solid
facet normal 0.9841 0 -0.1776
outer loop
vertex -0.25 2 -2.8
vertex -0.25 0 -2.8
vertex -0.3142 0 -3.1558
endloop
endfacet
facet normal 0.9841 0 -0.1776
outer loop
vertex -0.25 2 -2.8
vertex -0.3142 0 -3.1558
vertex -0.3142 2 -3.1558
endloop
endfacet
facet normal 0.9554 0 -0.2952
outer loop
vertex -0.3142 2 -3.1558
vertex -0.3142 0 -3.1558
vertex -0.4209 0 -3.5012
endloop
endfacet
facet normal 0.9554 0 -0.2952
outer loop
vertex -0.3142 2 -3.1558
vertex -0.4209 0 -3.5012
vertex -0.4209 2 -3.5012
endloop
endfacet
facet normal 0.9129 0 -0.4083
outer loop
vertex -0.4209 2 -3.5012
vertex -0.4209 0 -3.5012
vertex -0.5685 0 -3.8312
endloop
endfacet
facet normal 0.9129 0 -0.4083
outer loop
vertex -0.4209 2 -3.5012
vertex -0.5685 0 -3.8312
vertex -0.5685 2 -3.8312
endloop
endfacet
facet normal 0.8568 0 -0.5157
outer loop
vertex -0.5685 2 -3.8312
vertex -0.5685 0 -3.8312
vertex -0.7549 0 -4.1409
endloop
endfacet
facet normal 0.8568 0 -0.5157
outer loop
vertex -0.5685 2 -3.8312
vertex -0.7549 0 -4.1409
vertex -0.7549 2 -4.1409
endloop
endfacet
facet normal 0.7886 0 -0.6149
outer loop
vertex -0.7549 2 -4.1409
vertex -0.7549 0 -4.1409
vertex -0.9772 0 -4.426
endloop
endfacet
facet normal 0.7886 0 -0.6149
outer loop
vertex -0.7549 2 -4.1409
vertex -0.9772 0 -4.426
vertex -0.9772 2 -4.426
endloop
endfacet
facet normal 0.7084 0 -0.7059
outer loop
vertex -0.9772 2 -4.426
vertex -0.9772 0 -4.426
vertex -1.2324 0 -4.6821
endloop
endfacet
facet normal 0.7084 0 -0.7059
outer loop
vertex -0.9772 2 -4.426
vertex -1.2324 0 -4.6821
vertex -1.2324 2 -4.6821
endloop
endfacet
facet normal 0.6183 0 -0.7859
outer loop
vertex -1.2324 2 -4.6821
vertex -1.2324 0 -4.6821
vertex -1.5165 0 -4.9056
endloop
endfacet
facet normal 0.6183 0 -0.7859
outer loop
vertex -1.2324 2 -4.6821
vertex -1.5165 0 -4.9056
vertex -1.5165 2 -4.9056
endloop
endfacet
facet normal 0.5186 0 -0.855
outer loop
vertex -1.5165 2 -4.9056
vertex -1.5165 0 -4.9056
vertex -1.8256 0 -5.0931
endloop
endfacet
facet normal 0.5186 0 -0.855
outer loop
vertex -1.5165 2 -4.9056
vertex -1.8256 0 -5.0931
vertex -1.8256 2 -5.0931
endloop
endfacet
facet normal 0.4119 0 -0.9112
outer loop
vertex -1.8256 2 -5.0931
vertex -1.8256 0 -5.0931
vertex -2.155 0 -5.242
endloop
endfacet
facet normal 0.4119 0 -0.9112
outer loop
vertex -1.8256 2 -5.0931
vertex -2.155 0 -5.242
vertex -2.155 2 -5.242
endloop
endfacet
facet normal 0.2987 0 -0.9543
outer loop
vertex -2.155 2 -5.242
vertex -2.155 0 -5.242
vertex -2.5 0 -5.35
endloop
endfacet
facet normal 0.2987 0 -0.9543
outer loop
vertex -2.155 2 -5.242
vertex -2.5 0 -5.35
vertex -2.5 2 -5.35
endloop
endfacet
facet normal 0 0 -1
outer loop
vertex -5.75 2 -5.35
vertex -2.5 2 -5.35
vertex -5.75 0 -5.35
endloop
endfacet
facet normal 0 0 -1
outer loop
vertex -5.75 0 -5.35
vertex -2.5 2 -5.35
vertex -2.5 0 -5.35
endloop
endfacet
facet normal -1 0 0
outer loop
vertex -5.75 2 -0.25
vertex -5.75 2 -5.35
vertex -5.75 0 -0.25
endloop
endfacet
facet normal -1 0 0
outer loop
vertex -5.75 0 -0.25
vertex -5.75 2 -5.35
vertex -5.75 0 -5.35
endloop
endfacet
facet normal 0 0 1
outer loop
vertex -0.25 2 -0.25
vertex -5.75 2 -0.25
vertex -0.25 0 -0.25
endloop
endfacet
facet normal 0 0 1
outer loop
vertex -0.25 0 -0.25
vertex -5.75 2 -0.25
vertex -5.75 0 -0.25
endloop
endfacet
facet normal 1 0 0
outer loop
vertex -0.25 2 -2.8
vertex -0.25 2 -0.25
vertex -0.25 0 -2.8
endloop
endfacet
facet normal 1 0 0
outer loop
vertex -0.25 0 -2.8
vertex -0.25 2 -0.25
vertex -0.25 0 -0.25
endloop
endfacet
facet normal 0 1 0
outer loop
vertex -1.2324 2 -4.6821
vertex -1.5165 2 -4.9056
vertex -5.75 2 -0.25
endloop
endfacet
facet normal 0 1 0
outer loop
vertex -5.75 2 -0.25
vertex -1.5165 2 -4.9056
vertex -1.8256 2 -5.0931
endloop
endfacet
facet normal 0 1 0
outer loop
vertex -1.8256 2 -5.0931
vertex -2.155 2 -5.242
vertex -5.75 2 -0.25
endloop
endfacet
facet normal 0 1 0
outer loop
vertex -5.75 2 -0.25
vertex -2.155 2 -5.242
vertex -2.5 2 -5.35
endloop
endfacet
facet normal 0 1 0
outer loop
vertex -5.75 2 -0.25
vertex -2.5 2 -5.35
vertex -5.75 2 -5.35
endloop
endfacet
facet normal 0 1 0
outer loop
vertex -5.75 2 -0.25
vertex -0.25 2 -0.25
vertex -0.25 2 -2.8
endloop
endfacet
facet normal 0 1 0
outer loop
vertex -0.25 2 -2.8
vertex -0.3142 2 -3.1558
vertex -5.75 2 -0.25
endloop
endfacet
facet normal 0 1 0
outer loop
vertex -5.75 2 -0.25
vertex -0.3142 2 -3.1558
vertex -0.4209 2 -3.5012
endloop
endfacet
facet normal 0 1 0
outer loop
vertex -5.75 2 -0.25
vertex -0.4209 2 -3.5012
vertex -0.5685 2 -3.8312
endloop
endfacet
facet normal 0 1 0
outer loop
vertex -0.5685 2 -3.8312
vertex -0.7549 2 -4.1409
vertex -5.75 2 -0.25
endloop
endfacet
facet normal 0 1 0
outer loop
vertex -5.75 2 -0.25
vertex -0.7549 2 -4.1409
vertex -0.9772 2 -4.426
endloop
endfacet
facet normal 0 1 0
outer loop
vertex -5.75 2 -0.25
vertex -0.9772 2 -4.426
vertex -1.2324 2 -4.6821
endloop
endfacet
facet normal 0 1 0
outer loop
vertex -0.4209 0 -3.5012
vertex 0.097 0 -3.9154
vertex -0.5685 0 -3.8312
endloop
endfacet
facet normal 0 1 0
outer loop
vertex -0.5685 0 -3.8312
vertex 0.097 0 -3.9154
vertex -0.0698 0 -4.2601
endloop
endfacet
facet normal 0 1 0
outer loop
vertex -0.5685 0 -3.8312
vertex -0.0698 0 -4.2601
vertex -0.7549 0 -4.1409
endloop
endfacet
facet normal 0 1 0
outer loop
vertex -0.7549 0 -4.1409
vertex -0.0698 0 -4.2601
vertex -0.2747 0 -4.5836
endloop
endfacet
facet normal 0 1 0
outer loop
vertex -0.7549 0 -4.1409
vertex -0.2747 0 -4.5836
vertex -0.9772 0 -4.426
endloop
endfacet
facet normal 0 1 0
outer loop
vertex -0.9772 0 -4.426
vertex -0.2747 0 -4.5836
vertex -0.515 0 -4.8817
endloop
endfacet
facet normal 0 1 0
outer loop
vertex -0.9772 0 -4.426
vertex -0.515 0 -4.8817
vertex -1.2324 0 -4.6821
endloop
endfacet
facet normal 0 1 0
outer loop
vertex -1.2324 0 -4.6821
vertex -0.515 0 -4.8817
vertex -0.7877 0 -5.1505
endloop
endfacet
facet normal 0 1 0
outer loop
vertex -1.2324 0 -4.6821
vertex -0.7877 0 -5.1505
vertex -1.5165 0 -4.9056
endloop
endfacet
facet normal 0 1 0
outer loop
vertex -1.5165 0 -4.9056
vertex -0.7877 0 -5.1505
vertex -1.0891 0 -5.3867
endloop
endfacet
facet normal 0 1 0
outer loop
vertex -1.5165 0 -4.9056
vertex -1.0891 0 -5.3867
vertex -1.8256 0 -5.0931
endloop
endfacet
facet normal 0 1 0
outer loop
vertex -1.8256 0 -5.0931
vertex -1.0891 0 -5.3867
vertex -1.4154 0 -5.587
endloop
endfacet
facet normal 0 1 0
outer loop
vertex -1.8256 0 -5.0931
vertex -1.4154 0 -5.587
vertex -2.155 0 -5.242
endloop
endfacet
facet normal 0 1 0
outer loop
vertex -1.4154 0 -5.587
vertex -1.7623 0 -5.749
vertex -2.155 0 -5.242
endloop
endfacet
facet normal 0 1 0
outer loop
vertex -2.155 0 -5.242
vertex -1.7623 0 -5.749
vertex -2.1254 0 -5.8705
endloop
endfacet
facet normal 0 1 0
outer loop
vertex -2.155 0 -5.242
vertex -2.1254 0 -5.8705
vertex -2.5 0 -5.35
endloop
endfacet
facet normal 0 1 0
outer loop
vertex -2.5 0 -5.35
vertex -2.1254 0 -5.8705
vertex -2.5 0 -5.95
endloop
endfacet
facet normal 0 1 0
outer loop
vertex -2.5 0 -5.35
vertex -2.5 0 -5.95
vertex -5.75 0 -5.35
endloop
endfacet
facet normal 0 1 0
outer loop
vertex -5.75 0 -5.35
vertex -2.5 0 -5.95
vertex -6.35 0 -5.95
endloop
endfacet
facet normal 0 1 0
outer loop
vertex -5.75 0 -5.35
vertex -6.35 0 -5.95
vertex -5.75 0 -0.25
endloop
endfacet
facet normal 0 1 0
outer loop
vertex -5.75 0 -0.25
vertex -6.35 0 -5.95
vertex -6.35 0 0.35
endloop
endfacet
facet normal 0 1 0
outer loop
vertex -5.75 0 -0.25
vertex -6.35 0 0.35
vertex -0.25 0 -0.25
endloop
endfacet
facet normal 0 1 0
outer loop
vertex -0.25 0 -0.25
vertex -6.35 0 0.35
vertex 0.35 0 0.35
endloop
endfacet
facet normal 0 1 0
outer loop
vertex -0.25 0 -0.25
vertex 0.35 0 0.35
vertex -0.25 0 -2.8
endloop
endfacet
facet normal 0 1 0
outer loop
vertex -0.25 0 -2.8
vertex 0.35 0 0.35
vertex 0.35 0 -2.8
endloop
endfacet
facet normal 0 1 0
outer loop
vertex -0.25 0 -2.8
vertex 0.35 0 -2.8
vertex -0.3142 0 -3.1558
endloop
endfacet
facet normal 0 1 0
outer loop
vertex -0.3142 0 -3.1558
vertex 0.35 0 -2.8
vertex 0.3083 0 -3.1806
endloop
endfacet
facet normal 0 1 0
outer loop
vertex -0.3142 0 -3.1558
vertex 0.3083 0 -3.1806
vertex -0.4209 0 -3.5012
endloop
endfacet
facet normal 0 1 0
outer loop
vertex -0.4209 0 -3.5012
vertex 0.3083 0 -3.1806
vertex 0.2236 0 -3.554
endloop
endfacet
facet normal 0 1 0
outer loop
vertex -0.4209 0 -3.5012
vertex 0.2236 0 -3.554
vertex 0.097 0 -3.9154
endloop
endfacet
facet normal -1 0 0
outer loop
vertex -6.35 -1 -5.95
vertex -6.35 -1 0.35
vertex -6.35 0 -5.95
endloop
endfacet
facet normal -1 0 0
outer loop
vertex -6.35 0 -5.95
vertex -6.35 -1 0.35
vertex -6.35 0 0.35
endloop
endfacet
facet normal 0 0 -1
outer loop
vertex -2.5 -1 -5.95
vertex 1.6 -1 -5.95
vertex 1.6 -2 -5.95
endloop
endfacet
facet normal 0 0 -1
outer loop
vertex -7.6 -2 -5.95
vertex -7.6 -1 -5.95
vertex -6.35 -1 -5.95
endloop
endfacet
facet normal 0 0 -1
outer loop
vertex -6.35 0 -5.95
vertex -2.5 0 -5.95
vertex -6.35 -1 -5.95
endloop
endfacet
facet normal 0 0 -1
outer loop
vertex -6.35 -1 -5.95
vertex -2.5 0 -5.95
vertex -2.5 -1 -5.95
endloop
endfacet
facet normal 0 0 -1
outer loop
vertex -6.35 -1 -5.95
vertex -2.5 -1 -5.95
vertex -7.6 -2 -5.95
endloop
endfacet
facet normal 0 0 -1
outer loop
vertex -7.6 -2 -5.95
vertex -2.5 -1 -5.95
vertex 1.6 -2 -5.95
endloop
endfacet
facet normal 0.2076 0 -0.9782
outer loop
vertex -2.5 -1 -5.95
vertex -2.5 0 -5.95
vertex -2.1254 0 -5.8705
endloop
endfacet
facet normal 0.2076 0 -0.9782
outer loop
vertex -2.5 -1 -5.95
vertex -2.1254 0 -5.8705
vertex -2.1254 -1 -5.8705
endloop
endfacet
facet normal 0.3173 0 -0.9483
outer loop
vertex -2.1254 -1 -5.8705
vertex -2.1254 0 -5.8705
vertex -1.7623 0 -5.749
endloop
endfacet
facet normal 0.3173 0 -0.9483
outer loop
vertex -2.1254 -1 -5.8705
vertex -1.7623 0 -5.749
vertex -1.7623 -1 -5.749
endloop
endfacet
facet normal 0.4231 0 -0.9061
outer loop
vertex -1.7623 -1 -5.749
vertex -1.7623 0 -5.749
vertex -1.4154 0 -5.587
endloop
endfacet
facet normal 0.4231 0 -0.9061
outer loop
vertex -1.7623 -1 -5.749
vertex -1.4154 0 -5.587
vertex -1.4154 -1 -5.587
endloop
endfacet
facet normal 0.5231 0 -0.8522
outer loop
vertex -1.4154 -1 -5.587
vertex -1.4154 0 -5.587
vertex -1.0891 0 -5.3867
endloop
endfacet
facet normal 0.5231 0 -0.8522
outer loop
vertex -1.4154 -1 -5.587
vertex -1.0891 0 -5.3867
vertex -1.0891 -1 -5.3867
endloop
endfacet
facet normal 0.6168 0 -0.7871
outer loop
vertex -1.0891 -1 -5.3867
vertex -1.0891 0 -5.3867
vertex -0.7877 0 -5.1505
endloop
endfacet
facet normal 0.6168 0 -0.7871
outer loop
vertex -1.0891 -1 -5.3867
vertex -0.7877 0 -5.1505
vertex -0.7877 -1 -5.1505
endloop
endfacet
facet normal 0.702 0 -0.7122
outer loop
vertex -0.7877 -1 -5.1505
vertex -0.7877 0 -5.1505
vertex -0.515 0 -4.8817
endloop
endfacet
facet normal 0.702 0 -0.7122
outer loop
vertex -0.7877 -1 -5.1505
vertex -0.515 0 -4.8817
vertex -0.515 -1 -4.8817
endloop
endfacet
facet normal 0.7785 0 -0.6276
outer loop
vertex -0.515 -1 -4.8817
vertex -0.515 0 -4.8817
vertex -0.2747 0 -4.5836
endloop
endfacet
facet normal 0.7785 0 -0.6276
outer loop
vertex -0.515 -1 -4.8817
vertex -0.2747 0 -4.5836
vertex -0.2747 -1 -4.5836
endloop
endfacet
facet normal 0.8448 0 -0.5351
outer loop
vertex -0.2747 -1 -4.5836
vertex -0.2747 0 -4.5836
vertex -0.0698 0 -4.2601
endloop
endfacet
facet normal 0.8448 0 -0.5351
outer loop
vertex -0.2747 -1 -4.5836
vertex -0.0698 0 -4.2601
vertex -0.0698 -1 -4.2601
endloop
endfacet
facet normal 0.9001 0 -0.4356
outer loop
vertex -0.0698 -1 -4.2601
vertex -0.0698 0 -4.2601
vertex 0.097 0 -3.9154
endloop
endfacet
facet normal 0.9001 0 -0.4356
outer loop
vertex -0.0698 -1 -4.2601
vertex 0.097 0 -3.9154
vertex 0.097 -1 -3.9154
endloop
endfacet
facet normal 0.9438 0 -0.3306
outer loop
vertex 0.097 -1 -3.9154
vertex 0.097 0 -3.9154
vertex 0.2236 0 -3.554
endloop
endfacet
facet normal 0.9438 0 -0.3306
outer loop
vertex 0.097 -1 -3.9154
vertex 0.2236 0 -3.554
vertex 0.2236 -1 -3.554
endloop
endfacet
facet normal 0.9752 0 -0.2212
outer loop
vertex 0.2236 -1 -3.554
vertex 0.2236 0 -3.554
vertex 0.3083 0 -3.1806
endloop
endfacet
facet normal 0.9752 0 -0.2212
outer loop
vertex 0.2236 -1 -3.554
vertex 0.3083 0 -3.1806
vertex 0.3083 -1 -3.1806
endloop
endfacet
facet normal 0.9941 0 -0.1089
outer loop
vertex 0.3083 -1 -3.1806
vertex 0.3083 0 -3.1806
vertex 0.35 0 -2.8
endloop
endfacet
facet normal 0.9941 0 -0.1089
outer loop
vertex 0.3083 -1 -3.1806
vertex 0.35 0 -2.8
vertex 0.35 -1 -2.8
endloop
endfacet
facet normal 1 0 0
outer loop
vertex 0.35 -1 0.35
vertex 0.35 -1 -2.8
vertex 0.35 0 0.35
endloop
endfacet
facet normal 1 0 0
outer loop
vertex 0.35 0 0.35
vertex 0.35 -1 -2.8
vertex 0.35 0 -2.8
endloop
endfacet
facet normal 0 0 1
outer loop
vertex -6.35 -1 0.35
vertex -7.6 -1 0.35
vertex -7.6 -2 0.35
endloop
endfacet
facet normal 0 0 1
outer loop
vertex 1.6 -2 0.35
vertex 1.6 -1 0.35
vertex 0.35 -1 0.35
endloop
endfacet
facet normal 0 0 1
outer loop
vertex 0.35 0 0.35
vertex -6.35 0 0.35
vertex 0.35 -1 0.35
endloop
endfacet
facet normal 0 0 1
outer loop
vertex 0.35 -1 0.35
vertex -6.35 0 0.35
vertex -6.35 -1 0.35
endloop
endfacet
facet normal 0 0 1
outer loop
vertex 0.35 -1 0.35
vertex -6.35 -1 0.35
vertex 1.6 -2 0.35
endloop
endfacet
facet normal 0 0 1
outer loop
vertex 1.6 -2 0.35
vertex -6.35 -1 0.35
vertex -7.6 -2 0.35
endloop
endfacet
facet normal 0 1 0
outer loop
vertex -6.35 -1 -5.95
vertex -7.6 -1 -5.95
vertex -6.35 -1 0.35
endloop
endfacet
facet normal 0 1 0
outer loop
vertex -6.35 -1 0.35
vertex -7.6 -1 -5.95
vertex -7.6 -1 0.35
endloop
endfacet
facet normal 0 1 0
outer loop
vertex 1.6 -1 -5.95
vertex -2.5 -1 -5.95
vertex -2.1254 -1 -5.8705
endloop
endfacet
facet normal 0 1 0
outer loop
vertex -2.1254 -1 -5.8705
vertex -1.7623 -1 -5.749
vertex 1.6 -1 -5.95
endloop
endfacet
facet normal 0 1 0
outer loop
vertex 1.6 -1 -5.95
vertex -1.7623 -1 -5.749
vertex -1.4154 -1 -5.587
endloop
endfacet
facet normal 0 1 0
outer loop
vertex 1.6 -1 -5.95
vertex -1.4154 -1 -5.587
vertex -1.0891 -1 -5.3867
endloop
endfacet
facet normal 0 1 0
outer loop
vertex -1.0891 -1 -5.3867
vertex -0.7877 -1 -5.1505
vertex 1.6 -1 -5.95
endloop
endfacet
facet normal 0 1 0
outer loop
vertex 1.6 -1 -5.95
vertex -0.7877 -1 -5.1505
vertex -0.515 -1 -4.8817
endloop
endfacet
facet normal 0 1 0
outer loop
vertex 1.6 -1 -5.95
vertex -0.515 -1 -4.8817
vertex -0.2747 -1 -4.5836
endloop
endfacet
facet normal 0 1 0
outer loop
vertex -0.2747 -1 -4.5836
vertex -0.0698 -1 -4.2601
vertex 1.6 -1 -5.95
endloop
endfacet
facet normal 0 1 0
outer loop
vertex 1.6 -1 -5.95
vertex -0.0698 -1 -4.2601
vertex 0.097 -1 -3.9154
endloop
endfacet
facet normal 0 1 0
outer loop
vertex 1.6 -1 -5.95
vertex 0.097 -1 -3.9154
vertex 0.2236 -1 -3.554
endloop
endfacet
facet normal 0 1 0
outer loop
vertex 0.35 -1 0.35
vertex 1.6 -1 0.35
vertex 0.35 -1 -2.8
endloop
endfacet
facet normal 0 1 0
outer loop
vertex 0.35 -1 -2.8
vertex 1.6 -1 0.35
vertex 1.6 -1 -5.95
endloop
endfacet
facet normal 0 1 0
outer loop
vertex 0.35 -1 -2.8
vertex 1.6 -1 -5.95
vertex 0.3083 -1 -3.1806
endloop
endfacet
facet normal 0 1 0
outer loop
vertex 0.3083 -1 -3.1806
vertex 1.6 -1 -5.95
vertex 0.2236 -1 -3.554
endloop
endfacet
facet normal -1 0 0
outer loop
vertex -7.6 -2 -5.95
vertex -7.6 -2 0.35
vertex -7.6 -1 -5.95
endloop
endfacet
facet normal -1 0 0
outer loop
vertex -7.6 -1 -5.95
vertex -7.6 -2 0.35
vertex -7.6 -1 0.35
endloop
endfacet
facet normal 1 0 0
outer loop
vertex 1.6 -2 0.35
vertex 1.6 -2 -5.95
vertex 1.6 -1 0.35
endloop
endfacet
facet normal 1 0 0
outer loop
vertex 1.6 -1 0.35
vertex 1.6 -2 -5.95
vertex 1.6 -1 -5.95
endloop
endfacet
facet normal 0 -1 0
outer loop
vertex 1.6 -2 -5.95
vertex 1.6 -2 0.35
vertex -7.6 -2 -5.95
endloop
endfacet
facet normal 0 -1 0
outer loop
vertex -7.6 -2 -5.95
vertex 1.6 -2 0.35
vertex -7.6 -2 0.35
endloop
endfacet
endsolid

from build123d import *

# Parameters (mm, degrees)
BOSS_EXTRUDE2_DEPTH = 2
BOSS_EXTRUDE3_DEPTH = 1
SKETCH4_W           = 9.2
SKETCH4_H           = 6.3
BOSS_EXTRUDE4_DEPTH = 1


with BuildPart() as part:
    # Sketch2 → Boss-Extrude2 (new body)
    with BuildSketch(Plane(origin=(0, 0, 0), x_dir=(1, 0, 0), z_dir=(0, 1, 0))):
        with BuildLine():
            Line((-2.5, 5.35), (-5.75, 5.35))
            Line((-5.75, 5.35), (-5.75, 2.8))
            Line((-5.75, 2.8), (-5.75, 0.25))
            Line((-5.75, 0.25), (-0.25, 0.25))
            Line((-0.25, 0.25), (-0.25, 2.8))
            ThreePointArc((-0.25, 2.8), (-0.977233386, 4.425970541), (-2.5, 5.35))
        make_face()
    extrude(amount=BOSS_EXTRUDE2_DEPTH)

    # Sketch3 → Boss-Extrude3 (add)
    with BuildSketch(Plane.XZ):
        with BuildLine():
            Line((-6.35, 0.35), (0.35, 0.35))
            Line((0.35, 0.35), (0.35, -2.8))
            ThreePointArc((0.35, -2.8), (-0.515014693, -4.881653373), (-2.5, -5.95))
            Line((-2.5, -5.95), (-6.35, -5.95))
            Line((-6.35, -5.95), (-6.35, 0.35))
        make_face()
    extrude(amount=BOSS_EXTRUDE3_DEPTH)

    # Sketch4 → Boss-Extrude4 (add)
    with BuildSketch(Plane.XZ.offset(1)):
        with Locations((-3, -2.8)):
            Rectangle(SKETCH4_W, SKETCH4_H)
    extrude(amount=BOSS_EXTRUDE4_DEPTH)


solid = part.part
